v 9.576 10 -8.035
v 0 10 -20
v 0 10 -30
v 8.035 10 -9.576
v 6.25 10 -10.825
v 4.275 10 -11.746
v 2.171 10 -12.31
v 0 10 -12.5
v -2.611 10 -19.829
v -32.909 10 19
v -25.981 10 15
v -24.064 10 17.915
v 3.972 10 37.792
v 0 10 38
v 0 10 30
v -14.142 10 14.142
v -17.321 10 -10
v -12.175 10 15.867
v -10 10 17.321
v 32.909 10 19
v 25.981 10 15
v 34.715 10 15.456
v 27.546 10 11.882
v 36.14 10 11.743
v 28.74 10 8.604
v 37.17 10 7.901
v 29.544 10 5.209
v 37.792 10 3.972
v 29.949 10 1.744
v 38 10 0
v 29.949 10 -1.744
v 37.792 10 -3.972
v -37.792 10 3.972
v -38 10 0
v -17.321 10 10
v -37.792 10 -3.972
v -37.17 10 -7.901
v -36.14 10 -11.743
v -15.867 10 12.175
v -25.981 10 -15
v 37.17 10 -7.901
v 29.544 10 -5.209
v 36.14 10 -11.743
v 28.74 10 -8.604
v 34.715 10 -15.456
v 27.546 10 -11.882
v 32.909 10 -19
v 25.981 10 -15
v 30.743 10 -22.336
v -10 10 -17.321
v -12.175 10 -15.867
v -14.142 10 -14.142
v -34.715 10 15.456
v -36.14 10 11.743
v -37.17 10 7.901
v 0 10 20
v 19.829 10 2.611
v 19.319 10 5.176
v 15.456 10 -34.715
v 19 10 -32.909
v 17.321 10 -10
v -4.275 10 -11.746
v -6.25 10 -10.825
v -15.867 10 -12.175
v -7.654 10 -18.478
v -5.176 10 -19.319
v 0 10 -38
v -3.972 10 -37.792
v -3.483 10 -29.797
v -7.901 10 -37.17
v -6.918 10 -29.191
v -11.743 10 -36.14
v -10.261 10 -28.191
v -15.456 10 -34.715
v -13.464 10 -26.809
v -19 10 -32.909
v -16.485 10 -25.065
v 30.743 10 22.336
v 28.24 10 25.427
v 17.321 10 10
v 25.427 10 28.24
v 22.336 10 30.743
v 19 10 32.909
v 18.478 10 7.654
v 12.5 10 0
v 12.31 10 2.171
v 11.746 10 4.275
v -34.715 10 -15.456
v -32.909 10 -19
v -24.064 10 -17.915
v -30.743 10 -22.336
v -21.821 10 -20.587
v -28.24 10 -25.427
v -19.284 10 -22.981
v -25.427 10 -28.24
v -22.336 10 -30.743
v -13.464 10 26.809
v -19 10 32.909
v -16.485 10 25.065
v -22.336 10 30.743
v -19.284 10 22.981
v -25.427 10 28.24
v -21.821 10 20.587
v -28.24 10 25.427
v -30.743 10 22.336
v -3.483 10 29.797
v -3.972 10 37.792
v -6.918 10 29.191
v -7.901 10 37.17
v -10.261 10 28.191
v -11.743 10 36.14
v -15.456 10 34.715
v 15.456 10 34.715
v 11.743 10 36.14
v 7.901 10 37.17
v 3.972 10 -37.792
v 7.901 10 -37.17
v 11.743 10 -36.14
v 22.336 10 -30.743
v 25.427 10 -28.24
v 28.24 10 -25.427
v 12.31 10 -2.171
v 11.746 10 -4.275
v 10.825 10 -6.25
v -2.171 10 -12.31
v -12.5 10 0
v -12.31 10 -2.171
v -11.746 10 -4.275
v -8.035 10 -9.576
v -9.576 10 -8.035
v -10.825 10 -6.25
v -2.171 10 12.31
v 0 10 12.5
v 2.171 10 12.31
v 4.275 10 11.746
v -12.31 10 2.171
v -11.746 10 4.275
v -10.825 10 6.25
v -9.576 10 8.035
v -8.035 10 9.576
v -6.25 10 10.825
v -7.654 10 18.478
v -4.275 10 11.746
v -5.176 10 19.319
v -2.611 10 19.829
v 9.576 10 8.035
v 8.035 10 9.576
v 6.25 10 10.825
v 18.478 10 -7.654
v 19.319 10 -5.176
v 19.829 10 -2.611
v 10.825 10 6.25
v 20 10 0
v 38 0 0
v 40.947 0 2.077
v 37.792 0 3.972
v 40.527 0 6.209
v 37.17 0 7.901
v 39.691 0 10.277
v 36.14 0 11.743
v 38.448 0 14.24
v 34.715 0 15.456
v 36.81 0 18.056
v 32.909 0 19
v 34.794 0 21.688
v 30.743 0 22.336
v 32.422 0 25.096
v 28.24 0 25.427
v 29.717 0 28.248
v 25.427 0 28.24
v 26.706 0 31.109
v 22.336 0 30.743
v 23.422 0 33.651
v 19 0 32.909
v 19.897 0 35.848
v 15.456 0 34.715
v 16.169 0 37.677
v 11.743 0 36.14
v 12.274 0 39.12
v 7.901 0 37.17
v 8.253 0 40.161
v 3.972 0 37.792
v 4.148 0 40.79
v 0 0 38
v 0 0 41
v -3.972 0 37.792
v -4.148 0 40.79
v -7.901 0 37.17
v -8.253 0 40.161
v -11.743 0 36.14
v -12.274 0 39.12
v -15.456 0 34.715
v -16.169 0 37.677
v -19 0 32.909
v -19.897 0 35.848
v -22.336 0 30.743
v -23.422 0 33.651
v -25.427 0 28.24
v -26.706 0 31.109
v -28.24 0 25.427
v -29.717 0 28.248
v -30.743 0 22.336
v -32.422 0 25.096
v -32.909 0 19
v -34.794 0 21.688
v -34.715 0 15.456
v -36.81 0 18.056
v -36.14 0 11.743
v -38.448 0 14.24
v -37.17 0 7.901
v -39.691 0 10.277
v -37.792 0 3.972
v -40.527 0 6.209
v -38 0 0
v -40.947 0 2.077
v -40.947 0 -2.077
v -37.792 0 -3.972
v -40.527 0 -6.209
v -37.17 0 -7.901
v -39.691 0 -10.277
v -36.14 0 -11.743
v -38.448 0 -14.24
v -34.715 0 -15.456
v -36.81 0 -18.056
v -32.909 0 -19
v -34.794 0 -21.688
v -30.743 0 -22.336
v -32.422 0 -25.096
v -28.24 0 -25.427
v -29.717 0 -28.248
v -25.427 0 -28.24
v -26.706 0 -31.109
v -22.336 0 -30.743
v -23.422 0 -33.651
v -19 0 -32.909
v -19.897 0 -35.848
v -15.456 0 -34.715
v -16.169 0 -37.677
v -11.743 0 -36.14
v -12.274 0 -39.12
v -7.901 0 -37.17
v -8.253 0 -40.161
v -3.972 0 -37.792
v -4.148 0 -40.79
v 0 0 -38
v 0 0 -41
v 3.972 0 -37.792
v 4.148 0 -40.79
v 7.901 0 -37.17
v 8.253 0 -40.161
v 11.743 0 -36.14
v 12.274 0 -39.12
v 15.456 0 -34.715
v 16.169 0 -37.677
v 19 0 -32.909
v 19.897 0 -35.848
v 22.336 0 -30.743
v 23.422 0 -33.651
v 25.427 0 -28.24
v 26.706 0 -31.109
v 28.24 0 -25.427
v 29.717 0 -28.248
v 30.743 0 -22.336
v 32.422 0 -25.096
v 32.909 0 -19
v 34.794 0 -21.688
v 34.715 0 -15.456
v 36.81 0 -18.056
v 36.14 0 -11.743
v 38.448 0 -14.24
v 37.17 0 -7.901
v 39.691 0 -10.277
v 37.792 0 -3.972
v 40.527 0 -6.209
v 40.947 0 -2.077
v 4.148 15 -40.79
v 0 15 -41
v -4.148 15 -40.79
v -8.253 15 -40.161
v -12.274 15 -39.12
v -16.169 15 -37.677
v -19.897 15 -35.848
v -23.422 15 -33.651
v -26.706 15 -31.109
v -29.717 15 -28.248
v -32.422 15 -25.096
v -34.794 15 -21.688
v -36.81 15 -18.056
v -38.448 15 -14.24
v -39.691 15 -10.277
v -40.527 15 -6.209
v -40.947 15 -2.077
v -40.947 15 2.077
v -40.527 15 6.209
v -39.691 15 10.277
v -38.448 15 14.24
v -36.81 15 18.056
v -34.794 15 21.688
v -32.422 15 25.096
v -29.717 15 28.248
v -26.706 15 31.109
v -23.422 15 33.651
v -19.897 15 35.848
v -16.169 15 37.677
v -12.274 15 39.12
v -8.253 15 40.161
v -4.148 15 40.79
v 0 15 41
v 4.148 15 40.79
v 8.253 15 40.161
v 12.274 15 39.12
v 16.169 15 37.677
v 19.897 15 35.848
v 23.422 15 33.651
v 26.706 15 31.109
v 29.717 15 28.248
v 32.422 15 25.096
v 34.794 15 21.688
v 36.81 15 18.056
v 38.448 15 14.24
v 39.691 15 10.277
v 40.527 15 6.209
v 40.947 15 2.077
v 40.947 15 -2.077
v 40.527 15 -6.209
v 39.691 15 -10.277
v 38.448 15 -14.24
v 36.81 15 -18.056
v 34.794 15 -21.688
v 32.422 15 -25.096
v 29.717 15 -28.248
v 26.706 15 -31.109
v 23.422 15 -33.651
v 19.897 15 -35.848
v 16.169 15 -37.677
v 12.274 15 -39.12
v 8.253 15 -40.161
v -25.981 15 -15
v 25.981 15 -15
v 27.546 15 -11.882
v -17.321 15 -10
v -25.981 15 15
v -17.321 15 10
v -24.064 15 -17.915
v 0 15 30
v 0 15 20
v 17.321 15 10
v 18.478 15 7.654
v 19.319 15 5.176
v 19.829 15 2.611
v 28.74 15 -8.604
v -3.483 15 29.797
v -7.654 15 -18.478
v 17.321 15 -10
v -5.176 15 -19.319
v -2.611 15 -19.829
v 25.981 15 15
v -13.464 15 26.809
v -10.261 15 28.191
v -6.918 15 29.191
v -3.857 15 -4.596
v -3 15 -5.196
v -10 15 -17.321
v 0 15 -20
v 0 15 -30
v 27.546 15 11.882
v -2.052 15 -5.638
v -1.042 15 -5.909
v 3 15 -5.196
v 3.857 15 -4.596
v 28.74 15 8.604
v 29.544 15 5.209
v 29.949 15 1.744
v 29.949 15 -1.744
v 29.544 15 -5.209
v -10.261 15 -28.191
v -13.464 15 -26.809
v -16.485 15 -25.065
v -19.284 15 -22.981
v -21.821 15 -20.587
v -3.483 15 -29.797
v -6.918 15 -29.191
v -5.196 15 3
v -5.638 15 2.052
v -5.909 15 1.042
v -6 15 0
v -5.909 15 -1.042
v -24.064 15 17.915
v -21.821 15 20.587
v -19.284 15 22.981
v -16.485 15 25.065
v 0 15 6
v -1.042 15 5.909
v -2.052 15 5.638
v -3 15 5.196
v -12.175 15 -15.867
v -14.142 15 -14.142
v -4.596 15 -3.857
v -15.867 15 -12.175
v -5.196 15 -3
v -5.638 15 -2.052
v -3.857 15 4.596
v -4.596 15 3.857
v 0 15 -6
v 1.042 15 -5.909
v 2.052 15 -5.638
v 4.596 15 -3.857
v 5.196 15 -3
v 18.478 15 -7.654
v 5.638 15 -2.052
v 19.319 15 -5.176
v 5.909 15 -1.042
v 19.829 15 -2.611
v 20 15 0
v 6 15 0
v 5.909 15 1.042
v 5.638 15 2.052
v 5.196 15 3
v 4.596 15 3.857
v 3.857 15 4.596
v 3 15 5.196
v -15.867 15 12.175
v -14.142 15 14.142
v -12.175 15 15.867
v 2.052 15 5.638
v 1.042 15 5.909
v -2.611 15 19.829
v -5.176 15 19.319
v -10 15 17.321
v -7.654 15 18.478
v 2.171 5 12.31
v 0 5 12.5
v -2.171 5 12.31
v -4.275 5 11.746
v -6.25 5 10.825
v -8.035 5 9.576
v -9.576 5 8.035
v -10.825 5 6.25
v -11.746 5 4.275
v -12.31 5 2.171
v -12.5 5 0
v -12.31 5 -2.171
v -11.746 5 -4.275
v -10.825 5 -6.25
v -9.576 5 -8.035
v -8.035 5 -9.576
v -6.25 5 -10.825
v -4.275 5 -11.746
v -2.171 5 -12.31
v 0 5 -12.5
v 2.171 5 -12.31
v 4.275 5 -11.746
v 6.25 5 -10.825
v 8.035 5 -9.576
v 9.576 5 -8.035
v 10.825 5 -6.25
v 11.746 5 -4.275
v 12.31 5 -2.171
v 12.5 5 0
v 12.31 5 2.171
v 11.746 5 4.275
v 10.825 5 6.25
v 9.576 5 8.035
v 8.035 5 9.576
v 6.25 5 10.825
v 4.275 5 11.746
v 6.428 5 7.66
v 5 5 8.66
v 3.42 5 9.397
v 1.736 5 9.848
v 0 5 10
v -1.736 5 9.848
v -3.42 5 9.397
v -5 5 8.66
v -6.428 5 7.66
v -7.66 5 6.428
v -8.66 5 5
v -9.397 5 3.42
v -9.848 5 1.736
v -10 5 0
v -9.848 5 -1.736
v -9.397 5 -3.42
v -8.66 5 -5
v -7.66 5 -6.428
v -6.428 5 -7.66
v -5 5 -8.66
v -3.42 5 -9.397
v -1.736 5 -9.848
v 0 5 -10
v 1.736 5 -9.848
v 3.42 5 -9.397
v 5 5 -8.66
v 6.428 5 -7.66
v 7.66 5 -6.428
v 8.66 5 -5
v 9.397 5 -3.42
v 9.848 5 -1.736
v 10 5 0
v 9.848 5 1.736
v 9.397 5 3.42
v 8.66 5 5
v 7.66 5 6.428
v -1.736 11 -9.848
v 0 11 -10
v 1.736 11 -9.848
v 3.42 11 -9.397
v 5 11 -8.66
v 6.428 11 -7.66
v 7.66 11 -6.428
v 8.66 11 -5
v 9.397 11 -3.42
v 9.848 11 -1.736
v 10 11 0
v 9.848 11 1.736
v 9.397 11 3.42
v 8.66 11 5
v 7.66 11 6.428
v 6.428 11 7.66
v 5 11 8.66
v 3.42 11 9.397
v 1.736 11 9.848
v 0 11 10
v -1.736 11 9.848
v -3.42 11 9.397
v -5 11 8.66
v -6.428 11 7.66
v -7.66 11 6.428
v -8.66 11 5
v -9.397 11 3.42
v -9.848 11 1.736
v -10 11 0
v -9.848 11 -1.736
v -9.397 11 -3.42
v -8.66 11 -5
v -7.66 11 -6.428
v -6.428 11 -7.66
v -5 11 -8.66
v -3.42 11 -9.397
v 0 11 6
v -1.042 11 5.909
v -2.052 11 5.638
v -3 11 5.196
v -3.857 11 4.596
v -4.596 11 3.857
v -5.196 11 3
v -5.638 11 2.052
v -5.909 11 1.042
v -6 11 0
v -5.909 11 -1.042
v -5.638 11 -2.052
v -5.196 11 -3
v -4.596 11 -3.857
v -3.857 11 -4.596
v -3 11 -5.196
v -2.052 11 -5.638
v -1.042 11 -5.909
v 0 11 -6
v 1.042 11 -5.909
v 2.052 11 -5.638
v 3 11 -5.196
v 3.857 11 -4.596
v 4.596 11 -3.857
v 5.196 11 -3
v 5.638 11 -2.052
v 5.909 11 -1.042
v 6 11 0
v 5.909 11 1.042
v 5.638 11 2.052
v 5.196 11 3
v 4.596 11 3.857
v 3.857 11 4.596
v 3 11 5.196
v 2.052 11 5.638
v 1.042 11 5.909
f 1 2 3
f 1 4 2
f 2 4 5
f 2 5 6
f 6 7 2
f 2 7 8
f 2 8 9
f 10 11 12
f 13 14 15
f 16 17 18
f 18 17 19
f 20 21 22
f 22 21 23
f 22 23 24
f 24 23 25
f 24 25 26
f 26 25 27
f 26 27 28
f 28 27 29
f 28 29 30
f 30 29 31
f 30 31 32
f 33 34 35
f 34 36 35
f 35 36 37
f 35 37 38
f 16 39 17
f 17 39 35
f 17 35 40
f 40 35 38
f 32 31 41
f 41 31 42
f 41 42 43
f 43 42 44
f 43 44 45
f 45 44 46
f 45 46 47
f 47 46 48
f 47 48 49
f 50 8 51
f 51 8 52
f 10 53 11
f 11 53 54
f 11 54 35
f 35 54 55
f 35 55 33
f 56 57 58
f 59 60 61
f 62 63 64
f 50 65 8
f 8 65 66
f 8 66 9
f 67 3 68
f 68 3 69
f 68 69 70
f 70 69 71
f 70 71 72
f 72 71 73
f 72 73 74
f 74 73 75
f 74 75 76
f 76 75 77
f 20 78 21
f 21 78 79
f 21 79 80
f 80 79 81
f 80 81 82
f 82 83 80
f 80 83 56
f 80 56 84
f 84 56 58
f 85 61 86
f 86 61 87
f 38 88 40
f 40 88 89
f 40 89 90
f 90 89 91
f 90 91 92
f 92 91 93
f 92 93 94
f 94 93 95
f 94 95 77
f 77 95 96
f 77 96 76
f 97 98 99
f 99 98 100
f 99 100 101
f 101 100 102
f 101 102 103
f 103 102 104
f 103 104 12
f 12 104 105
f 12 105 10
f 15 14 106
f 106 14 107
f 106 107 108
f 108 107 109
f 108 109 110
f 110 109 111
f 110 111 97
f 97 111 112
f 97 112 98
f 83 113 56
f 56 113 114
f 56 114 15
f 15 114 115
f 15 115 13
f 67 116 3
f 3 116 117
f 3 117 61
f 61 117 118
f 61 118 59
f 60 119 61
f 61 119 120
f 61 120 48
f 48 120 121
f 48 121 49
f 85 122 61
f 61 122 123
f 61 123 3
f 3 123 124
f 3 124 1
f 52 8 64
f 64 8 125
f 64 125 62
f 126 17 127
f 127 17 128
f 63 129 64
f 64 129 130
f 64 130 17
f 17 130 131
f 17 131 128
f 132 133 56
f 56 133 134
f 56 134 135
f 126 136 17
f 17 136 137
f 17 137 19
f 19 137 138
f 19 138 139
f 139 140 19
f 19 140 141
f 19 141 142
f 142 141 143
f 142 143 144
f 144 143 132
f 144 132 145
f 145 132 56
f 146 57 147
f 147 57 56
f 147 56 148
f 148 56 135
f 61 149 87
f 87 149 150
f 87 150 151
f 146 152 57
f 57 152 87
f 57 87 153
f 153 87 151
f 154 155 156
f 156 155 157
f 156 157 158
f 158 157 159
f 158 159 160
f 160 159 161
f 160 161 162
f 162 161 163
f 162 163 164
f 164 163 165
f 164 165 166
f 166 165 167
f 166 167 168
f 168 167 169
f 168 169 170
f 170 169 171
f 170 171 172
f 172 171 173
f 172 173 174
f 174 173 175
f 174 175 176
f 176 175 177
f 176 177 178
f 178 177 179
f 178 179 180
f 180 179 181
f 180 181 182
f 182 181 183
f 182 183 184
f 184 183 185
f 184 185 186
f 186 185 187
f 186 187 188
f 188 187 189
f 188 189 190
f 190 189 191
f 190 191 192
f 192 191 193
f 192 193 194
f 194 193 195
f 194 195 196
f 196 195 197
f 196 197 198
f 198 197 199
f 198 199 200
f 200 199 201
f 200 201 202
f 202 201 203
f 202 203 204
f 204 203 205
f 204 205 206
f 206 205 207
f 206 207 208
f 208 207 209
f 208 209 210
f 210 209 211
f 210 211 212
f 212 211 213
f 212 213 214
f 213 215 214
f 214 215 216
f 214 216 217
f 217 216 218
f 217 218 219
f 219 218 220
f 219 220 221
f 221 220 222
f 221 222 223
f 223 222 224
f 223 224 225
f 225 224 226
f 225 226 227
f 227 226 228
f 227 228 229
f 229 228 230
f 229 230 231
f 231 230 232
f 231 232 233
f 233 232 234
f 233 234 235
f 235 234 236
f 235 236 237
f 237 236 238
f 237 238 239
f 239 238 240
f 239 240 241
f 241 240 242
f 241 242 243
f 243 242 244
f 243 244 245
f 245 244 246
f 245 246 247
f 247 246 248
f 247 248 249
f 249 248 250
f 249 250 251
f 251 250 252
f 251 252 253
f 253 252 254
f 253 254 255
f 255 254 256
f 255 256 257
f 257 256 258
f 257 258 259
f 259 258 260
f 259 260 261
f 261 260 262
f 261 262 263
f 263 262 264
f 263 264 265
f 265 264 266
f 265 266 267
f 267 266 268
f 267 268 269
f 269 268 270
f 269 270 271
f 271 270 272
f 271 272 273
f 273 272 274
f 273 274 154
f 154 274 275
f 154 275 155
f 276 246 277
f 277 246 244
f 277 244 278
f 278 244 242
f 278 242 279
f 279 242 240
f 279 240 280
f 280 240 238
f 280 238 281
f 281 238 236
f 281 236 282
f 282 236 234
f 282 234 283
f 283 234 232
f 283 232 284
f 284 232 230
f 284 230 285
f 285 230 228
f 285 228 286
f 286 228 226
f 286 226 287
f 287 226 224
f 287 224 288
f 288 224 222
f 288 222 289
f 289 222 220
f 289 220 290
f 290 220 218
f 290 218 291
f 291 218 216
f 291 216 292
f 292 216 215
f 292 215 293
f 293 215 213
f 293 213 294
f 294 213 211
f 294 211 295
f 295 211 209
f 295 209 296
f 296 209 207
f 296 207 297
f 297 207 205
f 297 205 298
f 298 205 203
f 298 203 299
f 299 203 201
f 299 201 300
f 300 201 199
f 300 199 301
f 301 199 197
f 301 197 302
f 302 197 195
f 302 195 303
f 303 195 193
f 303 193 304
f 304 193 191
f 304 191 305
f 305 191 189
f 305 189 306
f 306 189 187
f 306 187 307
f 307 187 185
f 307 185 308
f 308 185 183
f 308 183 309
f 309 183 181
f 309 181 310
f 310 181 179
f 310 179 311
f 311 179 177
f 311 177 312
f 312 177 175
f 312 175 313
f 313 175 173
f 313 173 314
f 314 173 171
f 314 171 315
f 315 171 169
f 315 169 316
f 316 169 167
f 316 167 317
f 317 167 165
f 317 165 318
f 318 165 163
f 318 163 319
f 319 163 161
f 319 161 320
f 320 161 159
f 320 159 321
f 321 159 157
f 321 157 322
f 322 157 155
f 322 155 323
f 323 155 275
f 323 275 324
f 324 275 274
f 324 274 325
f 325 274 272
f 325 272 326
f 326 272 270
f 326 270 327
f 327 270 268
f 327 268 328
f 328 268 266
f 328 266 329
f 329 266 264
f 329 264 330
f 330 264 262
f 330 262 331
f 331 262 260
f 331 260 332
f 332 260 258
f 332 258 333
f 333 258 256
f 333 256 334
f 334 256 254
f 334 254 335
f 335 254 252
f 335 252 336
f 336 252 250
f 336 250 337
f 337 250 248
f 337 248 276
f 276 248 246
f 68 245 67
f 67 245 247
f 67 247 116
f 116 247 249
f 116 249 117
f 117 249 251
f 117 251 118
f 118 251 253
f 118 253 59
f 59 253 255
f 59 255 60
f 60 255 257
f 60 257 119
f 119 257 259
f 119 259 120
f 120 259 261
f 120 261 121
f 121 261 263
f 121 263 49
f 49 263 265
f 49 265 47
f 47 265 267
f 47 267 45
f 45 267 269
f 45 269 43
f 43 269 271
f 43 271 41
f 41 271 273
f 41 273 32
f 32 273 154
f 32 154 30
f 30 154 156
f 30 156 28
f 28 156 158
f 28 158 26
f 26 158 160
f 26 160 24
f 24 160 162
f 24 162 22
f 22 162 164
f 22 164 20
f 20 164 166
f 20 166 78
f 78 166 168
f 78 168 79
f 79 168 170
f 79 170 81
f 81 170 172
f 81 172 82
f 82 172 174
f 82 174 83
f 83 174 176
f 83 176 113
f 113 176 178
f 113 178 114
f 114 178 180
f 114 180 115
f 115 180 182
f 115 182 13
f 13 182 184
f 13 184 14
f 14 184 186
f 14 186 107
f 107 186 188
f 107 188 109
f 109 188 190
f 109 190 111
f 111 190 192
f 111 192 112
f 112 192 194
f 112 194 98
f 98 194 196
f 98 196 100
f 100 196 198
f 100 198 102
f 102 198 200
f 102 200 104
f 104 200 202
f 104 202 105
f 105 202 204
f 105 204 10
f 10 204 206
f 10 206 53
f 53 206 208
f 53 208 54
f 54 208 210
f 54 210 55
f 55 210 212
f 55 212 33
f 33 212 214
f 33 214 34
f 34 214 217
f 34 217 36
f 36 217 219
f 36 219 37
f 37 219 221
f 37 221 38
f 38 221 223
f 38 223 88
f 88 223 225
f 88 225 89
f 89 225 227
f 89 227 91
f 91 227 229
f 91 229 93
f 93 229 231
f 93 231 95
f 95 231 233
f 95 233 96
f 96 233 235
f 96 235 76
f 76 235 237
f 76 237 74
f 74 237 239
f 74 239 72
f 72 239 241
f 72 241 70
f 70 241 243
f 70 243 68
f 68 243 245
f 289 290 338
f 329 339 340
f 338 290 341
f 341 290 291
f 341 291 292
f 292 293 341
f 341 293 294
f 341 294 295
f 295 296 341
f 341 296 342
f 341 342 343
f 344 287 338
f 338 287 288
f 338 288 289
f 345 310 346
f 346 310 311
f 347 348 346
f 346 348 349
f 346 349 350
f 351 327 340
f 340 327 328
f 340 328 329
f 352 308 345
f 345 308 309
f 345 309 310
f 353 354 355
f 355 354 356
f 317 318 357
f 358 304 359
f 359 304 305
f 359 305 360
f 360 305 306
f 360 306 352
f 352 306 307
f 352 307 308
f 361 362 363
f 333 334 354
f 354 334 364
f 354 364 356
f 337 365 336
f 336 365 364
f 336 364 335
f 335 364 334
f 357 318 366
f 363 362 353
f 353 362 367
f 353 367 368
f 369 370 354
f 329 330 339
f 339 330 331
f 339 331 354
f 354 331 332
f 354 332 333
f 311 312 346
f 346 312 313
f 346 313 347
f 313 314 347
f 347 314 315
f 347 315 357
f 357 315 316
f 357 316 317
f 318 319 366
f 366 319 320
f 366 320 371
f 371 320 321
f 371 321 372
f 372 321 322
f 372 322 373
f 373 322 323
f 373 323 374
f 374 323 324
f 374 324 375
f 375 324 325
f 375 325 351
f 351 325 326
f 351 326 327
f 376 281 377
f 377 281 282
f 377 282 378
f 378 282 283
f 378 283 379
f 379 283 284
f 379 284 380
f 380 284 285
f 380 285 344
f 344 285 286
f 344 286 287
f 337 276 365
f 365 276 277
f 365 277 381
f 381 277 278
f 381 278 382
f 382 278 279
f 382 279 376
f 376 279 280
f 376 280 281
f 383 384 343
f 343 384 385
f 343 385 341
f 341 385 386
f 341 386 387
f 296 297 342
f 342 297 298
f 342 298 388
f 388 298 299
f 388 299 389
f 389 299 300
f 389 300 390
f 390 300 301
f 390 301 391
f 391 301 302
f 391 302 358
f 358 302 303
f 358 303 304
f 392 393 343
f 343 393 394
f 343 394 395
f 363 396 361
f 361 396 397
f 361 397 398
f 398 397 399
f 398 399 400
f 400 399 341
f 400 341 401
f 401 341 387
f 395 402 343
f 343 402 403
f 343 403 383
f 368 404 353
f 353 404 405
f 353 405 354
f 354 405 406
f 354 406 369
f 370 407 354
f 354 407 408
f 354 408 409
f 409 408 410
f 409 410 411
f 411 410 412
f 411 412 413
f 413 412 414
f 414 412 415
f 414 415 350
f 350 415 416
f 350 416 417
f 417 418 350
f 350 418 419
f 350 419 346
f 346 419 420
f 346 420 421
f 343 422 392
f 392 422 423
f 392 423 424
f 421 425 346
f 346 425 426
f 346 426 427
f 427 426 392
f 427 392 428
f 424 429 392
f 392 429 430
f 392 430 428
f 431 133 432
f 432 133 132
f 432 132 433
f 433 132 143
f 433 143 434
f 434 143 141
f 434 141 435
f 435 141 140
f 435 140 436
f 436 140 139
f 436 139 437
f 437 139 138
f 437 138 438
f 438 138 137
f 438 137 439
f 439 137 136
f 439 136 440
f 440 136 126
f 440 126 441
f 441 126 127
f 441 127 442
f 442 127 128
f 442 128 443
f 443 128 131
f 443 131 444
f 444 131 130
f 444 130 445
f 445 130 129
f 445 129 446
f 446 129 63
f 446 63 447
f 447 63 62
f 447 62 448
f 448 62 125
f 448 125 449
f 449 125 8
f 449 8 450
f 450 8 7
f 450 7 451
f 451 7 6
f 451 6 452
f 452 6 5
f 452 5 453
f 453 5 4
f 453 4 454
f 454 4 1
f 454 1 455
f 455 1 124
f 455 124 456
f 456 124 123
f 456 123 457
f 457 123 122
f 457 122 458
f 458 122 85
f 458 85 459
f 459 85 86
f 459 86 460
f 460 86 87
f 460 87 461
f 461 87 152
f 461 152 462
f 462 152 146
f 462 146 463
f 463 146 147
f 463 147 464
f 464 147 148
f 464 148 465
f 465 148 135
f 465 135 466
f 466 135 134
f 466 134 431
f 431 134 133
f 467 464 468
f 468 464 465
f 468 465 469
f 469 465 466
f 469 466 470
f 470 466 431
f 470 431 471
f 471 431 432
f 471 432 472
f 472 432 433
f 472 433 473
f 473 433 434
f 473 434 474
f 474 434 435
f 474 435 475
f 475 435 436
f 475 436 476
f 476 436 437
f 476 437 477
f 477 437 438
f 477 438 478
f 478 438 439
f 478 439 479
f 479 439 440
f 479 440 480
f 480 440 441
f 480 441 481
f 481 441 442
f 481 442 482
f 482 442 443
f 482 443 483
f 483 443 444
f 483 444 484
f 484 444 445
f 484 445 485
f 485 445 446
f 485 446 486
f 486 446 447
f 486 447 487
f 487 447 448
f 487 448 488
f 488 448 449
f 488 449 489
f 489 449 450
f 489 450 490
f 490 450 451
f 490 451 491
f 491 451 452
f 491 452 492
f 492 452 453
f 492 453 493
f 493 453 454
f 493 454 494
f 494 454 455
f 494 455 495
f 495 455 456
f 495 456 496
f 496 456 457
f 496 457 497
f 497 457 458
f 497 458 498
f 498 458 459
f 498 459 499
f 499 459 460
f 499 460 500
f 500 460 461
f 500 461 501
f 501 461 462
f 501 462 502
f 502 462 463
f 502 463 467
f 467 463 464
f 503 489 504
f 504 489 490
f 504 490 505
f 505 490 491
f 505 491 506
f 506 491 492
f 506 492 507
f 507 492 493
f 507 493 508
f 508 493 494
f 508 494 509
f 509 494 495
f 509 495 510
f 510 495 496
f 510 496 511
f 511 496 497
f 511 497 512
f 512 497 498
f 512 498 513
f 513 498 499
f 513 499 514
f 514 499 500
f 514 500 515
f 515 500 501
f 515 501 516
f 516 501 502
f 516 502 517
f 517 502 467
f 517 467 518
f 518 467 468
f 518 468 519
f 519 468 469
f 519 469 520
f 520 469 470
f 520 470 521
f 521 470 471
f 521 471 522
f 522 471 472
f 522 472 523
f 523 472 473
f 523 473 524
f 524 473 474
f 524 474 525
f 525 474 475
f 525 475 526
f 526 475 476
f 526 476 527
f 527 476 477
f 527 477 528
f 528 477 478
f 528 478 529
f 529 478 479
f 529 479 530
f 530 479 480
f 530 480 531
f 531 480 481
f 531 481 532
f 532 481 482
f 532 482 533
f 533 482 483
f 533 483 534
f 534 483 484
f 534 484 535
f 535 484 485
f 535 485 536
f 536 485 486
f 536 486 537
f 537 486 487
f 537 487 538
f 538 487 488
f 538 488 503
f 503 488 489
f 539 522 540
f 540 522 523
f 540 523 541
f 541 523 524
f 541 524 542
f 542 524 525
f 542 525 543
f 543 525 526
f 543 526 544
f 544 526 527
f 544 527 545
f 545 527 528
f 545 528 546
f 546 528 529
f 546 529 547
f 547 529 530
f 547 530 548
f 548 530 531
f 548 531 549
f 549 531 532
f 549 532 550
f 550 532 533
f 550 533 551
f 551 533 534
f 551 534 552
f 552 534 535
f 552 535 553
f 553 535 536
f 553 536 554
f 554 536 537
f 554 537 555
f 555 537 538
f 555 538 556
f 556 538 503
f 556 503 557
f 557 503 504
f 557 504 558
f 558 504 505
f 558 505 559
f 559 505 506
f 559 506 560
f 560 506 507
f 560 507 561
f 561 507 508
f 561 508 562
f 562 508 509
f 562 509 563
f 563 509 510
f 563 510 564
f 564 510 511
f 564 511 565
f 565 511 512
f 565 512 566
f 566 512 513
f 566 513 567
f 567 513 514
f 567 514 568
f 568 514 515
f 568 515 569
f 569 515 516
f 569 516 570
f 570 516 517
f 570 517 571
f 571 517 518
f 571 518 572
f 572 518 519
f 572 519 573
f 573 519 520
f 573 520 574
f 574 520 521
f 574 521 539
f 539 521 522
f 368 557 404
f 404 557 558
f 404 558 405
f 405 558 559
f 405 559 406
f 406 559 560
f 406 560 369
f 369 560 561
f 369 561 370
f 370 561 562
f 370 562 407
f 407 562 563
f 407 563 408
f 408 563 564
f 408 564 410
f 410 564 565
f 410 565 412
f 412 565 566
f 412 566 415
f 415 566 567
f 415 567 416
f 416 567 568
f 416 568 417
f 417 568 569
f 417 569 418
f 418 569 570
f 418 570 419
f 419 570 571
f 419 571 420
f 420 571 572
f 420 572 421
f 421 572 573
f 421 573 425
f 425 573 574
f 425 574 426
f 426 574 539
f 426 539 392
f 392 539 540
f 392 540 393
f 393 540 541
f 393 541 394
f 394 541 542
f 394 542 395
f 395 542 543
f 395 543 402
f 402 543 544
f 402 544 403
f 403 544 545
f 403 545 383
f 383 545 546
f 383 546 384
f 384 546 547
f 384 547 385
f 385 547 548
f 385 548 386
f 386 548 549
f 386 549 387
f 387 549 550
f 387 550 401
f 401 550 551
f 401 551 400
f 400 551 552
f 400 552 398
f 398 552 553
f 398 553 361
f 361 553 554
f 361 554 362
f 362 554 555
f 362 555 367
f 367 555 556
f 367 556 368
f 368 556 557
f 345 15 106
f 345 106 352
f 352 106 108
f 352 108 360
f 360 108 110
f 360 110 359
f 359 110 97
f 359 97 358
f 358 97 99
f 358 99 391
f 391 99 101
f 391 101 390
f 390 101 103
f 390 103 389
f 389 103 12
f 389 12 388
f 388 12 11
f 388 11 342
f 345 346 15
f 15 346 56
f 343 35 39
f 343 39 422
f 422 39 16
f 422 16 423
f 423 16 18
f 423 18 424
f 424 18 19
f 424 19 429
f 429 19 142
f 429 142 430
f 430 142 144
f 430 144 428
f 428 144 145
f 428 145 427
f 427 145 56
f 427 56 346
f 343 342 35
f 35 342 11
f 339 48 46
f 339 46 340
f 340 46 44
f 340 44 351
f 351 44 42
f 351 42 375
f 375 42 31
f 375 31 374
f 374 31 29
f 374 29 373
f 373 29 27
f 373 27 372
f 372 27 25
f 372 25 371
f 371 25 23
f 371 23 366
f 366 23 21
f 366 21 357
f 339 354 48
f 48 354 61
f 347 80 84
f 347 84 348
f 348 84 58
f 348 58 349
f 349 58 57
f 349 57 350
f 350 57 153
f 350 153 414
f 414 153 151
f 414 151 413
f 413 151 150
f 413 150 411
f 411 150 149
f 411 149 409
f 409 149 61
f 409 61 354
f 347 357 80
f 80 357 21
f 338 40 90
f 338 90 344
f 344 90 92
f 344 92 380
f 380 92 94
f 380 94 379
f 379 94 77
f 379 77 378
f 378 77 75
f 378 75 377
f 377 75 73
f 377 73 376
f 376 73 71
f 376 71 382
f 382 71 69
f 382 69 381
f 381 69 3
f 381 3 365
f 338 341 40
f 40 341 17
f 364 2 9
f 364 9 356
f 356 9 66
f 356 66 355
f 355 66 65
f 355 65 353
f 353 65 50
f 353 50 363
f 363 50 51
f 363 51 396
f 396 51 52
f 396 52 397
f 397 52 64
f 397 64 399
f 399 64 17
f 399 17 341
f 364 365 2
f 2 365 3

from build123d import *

# Parameters (mm, degrees)
SKETCH1_R           = 41
SKETCH1_R_2         = 38
BOSS_EXTRUDE1_DEPTH = 10
SKETCH3_R           = 41
BOSS_EXTRUDE2_DEPTH = 5
SKETCH4_R           = 12.5
BOSS_EXTRUDE3_DEPTH = 5
SKETCH5_R           = 10
CUT_EXTRUDE1_DEPTH  = 6
SKETCH6_R           = 6
CUT_EXTRUDE2_DEPTH  = 5
CUT_EXTRUDE3_DEPTH  = 6


with BuildPart() as part:
    # Sketch1 → Boss-Extrude1 (new body)
    with BuildSketch(Plane(origin=(0, 0, 0), x_dir=(1, 0, 0), z_dir=(0, 1, 0))):
        Circle(SKETCH1_R)
        Circle(SKETCH1_R_2, mode=Mode.SUBTRACT)
    extrude(amount=BOSS_EXTRUDE1_DEPTH)

    # Sketch3 → Boss-Extrude2 (add)
    with BuildSketch(Plane(origin=(0, 10, 0), x_dir=(1, 0, 0), z_dir=(0, 1, 0))):
        Circle(SKETCH3_R)
    extrude(amount=BOSS_EXTRUDE2_DEPTH)

    # Sketch4 → Boss-Extrude3 (add)
    with BuildSketch(Plane.XZ.offset(-10)):
        Circle(SKETCH4_R)
    extrude(amount=BOSS_EXTRUDE3_DEPTH)

    # Sketch5 → Cut-Extrude1 (cut)
    with BuildSketch(Plane.XZ.offset(-5)):
        Circle(SKETCH5_R)
    extrude(amount=-CUT_EXTRUDE1_DEPTH, mode=Mode.SUBTRACT)

    # Sketch6 → Cut-Extrude2 (cut, through all)
    with BuildSketch(Plane.XZ.offset(-11)):
        Circle(SKETCH6_R)
    extrude(amount=-CUT_EXTRUDE2_DEPTH, mode=Mode.SUBTRACT)

    # Sketch7 → Cut-Extrude3 (cut, through all)
    with BuildSketch(Plane.XZ.offset(-10)):
        with BuildLine():
            Line((0, 20), (0, 30))
            ThreePointArc((0, 30), (-15, 25.980762114), (-25.980762114, 15))
            Line((-25.980762114, 15), (-17.320508076, 10))
            ThreePointArc((-17.320508076, 10), (-10, 17.320508076), (0, 20))
        make_face()
        with BuildLine():
            Line((17.320508076, -10), (25.980762114, -15))
            ThreePointArc((25.980762114, -15), (30, 0), (25.980762114, 15))
            Line((25.980762114, 15), (17.320508076, 10))
            ThreePointArc((17.320508076, 10), (20, 0), (17.320508076, -10))
        make_face()
        with BuildLine():
            Line((-17.320508076, -10), (-25.980762114, -15))
            ThreePointArc((-25.980762114, -15), (-15, -25.980762114), (0, -30))
            Line((0, -30), (0, -20))
            ThreePointArc((0, -20), (-10, -17.320508076), (-17.320508076, -10))
        make_face()
    extrude(amount=-CUT_EXTRUDE3_DEPTH, mode=Mode.SUBTRACT)


solid = part.part
